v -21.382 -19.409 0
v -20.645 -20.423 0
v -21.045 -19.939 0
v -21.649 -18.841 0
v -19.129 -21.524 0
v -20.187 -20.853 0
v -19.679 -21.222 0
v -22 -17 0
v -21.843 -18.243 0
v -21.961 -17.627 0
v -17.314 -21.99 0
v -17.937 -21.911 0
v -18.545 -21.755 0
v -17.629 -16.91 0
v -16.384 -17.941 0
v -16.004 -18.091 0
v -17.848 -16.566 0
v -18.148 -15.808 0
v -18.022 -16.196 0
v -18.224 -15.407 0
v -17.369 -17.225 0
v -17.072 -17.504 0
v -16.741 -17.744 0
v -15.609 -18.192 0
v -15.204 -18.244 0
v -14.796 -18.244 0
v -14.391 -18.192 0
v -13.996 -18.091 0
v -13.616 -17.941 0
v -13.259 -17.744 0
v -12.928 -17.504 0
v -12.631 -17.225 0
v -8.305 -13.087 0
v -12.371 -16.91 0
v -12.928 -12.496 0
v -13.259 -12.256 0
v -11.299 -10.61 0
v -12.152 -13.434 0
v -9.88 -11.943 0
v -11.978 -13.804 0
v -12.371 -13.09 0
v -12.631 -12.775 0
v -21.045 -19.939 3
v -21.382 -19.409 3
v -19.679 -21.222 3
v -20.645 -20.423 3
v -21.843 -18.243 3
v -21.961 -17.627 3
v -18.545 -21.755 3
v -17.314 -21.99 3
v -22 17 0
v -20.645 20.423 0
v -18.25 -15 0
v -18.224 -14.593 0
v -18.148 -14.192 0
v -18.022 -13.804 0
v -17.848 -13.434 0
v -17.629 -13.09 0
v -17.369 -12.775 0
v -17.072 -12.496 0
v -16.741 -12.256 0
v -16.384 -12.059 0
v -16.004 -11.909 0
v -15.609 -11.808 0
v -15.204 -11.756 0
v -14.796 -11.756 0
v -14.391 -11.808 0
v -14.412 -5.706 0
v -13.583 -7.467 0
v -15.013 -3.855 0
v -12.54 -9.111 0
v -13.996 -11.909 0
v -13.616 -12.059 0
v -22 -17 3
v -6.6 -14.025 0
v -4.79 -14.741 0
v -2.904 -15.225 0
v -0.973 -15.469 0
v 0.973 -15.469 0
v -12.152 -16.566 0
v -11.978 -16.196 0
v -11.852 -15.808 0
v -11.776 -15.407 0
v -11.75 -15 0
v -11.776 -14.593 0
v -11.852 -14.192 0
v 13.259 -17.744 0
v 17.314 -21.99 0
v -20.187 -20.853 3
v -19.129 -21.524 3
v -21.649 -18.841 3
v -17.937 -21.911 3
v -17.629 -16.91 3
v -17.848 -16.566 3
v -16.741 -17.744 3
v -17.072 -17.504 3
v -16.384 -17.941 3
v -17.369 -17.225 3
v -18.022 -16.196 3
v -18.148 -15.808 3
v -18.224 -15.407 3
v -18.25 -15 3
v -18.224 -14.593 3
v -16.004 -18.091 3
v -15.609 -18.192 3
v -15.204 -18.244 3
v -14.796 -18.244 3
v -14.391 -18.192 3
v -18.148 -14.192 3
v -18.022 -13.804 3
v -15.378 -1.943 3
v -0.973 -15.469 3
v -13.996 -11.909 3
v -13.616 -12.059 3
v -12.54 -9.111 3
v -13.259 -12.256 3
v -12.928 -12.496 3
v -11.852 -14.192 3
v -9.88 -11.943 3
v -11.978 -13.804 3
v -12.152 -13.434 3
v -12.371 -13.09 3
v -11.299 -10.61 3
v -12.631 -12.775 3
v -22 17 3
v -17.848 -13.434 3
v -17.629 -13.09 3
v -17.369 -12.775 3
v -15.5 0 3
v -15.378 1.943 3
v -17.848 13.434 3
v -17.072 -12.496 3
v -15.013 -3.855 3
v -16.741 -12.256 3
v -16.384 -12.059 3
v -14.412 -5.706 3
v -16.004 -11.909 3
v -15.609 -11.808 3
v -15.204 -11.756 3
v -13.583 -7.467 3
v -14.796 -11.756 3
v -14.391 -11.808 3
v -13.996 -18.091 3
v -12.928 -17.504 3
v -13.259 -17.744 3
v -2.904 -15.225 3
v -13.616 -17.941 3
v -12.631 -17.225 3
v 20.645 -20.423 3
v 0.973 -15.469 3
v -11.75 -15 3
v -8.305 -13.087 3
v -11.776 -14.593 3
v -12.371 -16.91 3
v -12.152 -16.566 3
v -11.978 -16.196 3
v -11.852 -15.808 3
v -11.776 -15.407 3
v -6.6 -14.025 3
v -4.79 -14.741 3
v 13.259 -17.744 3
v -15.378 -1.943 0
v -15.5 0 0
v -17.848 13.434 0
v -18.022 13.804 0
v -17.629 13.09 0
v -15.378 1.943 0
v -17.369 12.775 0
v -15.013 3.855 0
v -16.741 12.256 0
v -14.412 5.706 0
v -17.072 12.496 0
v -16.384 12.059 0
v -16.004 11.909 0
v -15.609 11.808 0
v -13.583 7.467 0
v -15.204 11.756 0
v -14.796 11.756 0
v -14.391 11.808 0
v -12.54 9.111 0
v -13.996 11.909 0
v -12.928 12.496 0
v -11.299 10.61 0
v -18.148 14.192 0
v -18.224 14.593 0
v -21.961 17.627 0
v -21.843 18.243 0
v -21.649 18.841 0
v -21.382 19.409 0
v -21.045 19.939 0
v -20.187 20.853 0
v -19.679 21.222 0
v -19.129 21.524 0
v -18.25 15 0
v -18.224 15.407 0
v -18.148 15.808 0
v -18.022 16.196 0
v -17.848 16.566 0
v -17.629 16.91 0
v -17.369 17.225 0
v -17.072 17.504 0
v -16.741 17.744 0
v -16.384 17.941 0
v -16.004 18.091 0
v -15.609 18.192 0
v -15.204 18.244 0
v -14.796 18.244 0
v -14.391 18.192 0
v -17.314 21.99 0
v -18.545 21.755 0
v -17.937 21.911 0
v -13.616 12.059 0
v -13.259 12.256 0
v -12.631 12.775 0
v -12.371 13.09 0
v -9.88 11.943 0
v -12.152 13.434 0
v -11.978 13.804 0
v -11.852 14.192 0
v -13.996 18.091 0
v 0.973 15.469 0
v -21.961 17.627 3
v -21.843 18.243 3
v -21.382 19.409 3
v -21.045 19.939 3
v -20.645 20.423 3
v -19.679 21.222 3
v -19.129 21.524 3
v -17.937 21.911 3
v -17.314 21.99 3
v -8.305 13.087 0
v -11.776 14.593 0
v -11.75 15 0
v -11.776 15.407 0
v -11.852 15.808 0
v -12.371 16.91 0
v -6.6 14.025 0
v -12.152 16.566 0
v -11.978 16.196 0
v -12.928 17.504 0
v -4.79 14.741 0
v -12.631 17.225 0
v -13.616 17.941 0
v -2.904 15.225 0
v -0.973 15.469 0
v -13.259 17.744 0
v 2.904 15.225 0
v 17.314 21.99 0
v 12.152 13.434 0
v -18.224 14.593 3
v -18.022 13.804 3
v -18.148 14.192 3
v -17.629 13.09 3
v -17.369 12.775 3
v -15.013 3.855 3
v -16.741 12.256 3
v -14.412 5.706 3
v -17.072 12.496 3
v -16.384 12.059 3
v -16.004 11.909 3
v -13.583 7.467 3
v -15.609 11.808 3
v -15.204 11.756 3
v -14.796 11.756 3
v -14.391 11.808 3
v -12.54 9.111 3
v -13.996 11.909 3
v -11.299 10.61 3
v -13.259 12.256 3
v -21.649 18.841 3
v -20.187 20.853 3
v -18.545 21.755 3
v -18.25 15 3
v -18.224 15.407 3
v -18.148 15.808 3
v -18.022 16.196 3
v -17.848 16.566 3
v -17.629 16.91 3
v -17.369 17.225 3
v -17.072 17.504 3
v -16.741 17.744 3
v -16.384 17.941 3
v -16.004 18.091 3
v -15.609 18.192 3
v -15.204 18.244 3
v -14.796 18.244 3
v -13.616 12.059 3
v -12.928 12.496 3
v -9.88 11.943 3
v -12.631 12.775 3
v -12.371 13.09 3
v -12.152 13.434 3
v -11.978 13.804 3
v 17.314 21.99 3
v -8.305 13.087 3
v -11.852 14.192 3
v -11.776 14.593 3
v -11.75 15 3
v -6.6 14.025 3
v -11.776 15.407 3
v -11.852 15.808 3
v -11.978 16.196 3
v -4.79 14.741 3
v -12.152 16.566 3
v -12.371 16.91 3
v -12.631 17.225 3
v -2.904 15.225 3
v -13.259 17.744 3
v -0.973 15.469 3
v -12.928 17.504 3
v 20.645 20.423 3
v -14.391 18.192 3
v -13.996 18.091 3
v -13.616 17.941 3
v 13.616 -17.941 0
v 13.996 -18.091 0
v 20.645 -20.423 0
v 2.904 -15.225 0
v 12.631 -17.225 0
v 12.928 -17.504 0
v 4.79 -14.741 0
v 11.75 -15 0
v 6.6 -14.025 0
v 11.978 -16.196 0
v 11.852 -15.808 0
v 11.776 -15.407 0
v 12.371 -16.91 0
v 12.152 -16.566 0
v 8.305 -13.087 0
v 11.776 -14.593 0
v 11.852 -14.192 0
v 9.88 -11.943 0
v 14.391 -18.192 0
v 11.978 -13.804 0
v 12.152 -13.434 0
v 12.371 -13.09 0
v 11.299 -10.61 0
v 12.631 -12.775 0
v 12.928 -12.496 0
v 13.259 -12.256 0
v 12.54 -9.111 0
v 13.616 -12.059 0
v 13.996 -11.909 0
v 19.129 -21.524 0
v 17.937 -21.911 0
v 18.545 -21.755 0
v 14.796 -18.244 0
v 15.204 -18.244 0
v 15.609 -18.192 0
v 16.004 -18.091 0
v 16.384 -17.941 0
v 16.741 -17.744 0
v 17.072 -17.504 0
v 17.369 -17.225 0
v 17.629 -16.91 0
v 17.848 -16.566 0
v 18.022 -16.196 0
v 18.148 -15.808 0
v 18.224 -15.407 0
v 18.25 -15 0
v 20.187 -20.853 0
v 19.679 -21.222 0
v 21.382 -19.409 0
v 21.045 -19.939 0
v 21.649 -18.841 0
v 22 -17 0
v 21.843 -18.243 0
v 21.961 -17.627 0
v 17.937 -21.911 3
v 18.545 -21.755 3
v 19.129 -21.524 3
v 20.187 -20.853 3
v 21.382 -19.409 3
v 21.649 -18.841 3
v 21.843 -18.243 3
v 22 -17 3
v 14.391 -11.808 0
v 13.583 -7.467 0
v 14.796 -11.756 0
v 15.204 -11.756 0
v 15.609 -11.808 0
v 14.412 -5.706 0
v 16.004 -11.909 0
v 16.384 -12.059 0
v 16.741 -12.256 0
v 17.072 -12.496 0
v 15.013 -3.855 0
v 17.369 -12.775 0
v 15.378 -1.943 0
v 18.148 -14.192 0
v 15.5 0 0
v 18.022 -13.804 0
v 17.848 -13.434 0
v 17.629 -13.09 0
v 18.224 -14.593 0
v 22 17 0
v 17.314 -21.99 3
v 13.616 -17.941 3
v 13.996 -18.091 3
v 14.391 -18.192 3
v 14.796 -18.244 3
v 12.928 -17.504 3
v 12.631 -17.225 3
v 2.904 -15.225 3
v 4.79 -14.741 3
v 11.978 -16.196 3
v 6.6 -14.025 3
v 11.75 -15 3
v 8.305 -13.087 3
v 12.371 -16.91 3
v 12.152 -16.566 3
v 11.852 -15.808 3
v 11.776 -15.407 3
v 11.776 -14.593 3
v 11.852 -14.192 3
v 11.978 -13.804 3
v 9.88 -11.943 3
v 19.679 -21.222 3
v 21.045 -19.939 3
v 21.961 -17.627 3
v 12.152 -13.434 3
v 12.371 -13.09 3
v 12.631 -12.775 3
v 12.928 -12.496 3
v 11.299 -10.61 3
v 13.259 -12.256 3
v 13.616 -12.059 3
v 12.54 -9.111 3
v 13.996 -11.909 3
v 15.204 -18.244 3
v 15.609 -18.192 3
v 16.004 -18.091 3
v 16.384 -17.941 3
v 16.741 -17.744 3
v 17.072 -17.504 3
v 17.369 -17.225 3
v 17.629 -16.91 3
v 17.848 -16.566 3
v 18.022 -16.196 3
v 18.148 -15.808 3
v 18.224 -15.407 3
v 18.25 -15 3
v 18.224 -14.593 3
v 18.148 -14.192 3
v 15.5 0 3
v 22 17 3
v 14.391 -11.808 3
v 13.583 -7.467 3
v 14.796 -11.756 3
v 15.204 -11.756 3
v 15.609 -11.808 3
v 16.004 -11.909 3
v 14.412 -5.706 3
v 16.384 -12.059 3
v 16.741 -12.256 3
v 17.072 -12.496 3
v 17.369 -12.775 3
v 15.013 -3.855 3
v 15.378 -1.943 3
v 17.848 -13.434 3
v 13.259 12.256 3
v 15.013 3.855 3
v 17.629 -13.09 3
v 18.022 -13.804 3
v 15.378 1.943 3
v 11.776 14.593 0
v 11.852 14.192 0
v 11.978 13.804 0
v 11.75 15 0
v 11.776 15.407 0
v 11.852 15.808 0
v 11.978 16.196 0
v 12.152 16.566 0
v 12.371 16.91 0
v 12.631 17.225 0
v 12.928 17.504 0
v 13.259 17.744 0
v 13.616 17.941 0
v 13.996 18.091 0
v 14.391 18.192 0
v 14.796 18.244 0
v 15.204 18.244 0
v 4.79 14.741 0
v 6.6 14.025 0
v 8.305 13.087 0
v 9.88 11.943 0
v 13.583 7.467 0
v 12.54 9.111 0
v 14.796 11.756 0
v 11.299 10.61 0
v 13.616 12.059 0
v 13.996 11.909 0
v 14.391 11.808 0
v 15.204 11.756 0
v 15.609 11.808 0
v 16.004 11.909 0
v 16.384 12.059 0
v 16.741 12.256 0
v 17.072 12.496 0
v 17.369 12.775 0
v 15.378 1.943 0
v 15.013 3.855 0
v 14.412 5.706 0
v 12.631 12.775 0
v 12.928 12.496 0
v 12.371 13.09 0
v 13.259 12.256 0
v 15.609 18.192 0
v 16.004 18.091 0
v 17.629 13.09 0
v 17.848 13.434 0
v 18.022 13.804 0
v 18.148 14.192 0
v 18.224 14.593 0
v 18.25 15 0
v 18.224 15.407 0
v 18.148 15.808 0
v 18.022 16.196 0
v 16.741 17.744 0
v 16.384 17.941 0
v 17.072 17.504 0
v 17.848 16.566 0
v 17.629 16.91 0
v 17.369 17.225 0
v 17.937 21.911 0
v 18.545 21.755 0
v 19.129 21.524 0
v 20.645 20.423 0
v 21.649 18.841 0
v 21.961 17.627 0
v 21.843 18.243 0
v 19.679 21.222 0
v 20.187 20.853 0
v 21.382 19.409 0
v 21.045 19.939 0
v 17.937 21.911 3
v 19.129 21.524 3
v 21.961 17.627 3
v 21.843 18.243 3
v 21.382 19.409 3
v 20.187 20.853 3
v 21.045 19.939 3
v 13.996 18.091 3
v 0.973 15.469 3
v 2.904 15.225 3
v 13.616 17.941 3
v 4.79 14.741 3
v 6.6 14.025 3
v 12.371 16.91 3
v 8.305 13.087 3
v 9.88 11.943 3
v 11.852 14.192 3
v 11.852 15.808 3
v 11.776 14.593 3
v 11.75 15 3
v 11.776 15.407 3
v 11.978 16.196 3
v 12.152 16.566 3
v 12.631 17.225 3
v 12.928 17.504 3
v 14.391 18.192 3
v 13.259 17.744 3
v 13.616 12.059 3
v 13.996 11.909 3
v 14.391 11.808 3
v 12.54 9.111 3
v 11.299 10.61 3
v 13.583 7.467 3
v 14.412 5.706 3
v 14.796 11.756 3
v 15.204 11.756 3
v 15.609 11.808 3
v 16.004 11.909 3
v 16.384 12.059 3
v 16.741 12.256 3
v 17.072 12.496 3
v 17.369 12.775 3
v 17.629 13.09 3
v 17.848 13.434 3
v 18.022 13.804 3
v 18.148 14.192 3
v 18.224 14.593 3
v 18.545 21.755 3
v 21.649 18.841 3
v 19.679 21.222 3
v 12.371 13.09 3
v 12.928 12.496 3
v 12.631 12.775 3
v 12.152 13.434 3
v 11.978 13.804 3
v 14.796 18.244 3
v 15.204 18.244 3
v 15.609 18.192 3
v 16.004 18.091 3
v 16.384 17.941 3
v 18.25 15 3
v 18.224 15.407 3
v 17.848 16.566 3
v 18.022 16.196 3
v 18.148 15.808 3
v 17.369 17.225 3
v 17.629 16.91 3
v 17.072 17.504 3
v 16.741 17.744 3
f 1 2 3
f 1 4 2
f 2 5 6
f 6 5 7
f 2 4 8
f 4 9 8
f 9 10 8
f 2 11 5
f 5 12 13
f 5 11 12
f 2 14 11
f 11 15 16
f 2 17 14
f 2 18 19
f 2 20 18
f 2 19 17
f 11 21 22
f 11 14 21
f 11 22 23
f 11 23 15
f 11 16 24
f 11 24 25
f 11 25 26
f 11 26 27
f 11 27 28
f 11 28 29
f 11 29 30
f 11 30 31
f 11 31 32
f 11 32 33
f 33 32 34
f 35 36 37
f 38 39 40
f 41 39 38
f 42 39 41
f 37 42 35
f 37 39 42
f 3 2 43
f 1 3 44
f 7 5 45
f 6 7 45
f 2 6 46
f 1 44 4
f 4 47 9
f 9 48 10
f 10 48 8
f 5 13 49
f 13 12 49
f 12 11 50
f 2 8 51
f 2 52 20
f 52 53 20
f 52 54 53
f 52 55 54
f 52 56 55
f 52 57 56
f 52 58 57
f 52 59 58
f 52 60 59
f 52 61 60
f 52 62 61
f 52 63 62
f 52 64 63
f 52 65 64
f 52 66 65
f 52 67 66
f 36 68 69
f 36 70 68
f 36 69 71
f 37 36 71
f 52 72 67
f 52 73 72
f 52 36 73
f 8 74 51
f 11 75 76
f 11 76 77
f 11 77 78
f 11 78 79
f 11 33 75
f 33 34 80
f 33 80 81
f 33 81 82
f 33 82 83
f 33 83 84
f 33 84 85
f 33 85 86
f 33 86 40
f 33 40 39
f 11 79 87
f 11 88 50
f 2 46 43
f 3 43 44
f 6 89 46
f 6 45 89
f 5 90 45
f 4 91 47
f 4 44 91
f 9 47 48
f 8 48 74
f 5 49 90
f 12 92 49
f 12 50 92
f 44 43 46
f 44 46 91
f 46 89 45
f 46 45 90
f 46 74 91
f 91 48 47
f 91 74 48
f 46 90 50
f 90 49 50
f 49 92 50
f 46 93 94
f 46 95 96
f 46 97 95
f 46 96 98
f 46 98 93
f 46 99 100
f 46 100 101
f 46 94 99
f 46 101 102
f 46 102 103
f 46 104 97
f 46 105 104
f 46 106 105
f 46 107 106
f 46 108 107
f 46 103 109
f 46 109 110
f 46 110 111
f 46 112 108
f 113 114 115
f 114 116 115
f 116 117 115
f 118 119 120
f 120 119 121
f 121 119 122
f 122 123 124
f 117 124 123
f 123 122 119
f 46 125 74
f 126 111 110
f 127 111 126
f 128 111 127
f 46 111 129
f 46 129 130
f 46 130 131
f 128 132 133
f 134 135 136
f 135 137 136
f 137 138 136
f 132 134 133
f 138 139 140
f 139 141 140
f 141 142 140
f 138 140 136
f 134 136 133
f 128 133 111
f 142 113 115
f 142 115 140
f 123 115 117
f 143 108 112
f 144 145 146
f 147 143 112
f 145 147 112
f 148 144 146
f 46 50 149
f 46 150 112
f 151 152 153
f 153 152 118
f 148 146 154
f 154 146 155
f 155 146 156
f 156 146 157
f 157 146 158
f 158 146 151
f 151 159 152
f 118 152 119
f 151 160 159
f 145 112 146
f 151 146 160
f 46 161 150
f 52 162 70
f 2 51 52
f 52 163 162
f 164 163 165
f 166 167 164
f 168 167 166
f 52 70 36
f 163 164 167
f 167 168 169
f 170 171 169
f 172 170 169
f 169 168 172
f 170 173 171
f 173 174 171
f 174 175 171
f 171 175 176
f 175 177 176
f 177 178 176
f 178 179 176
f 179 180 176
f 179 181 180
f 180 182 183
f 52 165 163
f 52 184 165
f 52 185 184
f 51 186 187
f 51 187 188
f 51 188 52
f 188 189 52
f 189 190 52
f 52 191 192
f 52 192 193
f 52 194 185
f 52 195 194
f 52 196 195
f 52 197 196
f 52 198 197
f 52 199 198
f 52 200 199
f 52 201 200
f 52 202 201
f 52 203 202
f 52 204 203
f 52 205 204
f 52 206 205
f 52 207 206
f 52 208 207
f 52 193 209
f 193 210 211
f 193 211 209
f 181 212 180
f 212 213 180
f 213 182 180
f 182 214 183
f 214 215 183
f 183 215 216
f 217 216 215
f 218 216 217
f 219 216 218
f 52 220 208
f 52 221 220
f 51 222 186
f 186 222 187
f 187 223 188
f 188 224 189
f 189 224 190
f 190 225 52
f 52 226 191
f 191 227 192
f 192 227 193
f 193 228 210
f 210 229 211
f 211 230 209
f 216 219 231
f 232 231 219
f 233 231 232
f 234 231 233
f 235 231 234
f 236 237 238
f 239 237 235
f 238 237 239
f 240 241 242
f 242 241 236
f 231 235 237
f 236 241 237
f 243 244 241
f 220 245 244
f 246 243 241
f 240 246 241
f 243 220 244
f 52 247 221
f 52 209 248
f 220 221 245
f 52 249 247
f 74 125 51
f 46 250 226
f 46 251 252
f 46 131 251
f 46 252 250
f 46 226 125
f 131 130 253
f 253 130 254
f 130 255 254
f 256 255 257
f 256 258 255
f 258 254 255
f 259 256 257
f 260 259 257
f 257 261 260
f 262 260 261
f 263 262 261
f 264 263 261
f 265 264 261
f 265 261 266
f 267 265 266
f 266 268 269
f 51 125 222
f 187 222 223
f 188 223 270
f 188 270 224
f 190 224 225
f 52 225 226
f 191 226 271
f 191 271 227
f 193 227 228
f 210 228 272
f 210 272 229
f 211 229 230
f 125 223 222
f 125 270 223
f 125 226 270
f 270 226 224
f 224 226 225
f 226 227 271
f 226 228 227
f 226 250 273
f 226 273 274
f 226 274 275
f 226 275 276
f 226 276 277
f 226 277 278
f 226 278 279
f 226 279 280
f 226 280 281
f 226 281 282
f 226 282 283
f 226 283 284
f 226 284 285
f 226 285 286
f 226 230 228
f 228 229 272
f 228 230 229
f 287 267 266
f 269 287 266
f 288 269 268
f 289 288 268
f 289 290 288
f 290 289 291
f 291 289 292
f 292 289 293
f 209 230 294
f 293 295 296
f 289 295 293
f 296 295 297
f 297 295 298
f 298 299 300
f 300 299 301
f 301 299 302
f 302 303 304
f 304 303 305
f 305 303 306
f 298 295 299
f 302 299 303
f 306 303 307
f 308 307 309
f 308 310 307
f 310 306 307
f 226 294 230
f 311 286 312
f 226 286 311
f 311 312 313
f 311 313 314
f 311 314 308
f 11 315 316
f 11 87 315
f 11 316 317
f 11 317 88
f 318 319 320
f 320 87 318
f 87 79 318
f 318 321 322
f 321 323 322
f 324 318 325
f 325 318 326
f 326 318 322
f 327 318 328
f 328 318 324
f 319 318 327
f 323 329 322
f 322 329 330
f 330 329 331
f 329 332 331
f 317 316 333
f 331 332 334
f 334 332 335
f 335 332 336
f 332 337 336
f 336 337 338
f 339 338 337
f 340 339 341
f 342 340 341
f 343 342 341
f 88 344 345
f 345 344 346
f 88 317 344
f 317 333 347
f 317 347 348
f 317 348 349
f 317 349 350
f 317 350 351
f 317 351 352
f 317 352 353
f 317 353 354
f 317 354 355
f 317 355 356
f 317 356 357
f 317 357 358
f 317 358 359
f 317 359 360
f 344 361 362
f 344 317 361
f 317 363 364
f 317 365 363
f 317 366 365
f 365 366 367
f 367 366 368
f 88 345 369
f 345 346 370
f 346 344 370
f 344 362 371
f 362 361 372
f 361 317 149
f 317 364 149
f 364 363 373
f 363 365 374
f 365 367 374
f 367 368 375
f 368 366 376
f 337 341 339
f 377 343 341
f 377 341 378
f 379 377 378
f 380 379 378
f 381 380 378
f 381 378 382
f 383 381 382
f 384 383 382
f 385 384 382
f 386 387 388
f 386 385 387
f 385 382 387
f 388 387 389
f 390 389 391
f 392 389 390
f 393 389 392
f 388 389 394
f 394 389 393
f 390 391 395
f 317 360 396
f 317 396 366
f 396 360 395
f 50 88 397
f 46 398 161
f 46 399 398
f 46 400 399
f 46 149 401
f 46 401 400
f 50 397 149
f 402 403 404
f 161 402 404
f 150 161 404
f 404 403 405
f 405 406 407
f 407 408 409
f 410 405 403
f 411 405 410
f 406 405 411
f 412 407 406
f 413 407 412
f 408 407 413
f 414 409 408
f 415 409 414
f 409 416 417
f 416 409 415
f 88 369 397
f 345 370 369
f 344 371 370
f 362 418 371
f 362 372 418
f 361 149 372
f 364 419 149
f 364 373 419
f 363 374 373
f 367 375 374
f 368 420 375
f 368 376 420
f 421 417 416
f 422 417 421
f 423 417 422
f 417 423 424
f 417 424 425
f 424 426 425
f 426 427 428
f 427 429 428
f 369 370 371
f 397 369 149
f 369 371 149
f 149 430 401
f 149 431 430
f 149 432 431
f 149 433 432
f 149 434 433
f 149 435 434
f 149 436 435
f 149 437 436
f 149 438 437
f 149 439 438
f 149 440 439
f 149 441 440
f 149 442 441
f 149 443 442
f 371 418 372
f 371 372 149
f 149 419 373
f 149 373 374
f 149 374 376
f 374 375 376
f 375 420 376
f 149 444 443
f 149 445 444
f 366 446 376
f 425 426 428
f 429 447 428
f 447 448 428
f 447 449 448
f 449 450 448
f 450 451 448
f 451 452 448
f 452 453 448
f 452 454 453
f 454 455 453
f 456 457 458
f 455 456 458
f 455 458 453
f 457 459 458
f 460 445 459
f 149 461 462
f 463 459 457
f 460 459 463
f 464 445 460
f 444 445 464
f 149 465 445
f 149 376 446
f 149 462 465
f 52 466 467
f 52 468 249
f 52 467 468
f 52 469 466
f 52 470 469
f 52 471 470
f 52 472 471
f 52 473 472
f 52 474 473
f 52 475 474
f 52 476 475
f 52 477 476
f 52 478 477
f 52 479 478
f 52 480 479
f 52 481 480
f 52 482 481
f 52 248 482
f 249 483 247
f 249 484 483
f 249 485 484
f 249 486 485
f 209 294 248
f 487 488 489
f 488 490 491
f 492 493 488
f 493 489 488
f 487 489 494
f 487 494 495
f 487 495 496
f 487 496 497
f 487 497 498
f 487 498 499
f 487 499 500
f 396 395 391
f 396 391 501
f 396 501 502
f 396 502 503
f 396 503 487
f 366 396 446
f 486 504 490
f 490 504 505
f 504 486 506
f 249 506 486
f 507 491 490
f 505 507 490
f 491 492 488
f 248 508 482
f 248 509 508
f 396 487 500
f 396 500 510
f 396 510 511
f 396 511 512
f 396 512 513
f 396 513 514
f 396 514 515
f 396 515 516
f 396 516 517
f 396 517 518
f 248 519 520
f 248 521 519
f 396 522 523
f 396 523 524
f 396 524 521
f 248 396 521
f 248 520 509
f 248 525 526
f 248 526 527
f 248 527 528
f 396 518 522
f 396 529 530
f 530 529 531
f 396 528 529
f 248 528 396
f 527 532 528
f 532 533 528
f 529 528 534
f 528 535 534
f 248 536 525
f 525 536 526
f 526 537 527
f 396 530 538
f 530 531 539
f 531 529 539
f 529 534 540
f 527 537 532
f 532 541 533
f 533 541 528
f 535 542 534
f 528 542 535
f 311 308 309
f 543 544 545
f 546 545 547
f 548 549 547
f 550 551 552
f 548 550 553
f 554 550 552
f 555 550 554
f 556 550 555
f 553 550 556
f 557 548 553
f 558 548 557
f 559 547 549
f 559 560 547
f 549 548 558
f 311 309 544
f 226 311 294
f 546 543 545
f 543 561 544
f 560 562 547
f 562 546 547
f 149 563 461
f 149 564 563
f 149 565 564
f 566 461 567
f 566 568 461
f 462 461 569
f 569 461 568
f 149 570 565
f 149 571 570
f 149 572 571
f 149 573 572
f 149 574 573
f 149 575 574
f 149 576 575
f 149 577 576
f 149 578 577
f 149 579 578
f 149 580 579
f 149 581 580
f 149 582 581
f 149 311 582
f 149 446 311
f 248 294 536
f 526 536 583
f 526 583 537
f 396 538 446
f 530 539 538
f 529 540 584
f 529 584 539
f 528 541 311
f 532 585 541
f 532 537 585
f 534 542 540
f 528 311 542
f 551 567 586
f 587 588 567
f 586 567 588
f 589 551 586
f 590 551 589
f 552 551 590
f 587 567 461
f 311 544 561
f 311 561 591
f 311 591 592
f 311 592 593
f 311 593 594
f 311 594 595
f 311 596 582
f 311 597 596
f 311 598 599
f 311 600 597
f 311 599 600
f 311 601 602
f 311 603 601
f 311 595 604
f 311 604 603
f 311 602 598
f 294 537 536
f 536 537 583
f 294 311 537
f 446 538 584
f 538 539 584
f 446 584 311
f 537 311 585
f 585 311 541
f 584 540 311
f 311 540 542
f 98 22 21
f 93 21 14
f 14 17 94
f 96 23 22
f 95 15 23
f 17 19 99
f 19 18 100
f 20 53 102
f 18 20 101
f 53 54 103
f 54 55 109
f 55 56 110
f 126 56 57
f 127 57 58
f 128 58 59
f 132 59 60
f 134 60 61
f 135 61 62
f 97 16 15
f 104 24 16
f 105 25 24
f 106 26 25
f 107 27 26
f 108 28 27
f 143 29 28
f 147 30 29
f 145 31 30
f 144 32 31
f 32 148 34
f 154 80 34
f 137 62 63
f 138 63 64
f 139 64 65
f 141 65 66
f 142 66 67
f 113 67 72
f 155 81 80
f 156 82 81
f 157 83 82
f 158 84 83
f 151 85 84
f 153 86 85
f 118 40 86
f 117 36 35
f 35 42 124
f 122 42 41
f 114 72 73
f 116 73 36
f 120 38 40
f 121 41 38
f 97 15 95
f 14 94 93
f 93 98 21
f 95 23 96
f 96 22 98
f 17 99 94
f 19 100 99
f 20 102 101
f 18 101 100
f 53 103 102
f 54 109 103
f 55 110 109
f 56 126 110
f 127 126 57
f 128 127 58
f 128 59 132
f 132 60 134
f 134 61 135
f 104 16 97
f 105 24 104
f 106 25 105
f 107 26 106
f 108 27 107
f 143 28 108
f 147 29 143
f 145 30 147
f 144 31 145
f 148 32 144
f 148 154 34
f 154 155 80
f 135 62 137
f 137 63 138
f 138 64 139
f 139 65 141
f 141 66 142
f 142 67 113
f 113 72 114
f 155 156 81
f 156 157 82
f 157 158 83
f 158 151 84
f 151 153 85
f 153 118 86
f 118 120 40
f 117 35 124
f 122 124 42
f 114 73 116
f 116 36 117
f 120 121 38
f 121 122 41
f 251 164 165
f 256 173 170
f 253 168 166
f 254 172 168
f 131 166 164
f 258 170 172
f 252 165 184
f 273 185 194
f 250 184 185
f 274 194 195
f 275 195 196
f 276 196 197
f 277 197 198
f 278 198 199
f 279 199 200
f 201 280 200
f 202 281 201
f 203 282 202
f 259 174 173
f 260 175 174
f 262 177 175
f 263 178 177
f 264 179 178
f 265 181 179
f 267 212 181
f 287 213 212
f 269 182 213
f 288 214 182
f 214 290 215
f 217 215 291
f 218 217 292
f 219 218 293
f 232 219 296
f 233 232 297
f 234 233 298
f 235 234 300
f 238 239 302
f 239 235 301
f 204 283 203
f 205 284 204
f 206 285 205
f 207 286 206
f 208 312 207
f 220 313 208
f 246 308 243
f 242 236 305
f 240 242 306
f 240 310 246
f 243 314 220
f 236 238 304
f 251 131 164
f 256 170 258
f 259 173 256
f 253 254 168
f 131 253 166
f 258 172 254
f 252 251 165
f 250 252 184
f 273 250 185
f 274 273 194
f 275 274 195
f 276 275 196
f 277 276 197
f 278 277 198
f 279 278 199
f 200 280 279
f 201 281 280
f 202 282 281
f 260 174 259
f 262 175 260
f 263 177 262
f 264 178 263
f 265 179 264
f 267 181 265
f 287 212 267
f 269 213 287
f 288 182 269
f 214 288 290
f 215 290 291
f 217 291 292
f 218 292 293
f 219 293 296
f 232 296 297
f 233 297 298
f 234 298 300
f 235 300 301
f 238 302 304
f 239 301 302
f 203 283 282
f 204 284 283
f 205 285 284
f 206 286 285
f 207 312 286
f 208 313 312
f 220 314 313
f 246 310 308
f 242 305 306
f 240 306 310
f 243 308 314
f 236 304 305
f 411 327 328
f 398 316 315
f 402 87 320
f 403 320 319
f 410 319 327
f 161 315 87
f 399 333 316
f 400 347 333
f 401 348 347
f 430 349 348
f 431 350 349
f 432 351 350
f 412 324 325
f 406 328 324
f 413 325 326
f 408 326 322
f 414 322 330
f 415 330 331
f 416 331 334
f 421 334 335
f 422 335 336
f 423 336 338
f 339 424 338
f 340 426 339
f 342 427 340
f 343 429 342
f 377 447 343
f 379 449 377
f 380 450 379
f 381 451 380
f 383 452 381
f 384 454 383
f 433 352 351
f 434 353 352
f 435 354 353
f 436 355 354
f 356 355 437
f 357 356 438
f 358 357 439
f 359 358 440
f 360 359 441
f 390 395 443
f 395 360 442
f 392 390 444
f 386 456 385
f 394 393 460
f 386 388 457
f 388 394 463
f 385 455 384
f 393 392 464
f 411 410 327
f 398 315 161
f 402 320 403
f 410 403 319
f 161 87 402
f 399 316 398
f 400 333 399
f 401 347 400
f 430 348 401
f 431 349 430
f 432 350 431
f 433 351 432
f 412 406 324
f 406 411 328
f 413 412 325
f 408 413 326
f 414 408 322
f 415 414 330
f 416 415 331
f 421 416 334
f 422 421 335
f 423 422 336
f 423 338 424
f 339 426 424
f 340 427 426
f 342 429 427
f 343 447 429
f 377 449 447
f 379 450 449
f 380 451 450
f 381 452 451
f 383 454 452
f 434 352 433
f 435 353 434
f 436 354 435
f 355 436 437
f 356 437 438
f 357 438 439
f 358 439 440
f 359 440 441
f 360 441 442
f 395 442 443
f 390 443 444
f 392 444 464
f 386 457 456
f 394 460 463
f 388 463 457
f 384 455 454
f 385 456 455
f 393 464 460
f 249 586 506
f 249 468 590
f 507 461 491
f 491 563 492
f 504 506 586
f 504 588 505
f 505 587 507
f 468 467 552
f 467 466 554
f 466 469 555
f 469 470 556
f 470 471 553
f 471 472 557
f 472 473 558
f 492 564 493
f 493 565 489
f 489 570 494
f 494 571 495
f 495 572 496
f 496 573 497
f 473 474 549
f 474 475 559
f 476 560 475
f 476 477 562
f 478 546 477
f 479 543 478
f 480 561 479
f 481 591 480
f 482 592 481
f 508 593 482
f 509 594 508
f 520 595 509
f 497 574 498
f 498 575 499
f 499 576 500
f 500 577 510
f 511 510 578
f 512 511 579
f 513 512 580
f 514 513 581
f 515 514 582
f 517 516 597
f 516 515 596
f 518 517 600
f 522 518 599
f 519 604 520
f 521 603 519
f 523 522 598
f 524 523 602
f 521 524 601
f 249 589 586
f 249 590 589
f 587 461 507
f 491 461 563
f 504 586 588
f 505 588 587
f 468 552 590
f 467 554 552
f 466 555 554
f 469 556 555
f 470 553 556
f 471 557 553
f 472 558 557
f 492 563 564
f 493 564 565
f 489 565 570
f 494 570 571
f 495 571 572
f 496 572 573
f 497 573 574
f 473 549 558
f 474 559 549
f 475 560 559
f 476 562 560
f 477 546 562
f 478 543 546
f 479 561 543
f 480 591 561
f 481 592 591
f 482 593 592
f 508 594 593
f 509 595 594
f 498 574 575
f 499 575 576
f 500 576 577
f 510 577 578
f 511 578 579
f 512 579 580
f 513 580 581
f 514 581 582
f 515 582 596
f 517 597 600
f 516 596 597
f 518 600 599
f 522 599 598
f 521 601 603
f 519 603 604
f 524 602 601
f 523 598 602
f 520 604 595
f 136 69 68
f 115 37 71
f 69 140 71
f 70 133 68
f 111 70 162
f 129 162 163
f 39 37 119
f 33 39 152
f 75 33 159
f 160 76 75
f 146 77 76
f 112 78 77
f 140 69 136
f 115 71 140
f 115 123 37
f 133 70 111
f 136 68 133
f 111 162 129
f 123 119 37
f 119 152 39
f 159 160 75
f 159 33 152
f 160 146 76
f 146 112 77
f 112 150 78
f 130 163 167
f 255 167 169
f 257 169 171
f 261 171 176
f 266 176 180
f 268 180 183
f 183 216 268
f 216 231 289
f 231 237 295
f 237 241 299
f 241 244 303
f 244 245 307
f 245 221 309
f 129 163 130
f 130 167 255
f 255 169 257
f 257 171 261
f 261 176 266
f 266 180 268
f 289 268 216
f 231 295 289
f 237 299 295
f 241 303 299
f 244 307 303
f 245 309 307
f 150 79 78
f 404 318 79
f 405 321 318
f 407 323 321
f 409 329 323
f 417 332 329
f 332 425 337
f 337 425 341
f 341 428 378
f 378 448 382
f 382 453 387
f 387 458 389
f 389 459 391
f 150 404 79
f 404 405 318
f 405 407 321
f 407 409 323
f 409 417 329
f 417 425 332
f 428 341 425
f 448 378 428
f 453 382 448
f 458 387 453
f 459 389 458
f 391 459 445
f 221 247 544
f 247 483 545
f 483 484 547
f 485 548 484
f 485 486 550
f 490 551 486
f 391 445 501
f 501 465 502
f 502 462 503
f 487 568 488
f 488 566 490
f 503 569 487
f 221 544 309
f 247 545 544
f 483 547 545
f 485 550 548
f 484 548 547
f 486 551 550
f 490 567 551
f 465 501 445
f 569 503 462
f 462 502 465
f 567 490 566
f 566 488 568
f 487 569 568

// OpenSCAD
$fn = 50;

difference() {
	union() {
		hull() {
			translate(v = [-17.0, 17.0, 0]) {
				cylinder(h = 3, r = 5);
			}
			translate(v = [17.0, 17.0, 0]) {
				cylinder(h = 3, r = 5);
			}
			translate(v = [-17.0, -17.0, 0]) {
				cylinder(h = 3, r = 5);
			}
			translate(v = [17.0, -17.0, 0]) {
				cylinder(h = 3, r = 5);
			}
		}
	}
	union() {
		translate(v = [-15.0, -15.0, -100.0]) {
			cylinder(h = 200, r = 3.25);
		}
		translate(v = [-15.0, 15.0, -100.0]) {
			cylinder(h = 200, r = 3.25);
		}
		translate(v = [15.0, -15.0, -100.0]) {
			cylinder(h = 200, r = 3.25);
		}
		translate(v = [15.0, 15.0, -100.0]) {
			cylinder(h = 200, r = 3.25);
		}
		translate(v = [-15.0, -15.0, -100.0]) {
			cylinder(h = 200, r = 1.8);
		}
		translate(v = [-15.0, 15.0, -100.0]) {
			cylinder(h = 200, r = 1.8);
		}
		translate(v = [15.0, -15.0, -100.0]) {
			cylinder(h = 200, r = 1.8);
		}
		translate(v = [15.0, 15.0, -100.0]) {
			cylinder(h = 200, r = 1.8);
		}
		cylinder(h = 3, r = 15.5);
	}
}
